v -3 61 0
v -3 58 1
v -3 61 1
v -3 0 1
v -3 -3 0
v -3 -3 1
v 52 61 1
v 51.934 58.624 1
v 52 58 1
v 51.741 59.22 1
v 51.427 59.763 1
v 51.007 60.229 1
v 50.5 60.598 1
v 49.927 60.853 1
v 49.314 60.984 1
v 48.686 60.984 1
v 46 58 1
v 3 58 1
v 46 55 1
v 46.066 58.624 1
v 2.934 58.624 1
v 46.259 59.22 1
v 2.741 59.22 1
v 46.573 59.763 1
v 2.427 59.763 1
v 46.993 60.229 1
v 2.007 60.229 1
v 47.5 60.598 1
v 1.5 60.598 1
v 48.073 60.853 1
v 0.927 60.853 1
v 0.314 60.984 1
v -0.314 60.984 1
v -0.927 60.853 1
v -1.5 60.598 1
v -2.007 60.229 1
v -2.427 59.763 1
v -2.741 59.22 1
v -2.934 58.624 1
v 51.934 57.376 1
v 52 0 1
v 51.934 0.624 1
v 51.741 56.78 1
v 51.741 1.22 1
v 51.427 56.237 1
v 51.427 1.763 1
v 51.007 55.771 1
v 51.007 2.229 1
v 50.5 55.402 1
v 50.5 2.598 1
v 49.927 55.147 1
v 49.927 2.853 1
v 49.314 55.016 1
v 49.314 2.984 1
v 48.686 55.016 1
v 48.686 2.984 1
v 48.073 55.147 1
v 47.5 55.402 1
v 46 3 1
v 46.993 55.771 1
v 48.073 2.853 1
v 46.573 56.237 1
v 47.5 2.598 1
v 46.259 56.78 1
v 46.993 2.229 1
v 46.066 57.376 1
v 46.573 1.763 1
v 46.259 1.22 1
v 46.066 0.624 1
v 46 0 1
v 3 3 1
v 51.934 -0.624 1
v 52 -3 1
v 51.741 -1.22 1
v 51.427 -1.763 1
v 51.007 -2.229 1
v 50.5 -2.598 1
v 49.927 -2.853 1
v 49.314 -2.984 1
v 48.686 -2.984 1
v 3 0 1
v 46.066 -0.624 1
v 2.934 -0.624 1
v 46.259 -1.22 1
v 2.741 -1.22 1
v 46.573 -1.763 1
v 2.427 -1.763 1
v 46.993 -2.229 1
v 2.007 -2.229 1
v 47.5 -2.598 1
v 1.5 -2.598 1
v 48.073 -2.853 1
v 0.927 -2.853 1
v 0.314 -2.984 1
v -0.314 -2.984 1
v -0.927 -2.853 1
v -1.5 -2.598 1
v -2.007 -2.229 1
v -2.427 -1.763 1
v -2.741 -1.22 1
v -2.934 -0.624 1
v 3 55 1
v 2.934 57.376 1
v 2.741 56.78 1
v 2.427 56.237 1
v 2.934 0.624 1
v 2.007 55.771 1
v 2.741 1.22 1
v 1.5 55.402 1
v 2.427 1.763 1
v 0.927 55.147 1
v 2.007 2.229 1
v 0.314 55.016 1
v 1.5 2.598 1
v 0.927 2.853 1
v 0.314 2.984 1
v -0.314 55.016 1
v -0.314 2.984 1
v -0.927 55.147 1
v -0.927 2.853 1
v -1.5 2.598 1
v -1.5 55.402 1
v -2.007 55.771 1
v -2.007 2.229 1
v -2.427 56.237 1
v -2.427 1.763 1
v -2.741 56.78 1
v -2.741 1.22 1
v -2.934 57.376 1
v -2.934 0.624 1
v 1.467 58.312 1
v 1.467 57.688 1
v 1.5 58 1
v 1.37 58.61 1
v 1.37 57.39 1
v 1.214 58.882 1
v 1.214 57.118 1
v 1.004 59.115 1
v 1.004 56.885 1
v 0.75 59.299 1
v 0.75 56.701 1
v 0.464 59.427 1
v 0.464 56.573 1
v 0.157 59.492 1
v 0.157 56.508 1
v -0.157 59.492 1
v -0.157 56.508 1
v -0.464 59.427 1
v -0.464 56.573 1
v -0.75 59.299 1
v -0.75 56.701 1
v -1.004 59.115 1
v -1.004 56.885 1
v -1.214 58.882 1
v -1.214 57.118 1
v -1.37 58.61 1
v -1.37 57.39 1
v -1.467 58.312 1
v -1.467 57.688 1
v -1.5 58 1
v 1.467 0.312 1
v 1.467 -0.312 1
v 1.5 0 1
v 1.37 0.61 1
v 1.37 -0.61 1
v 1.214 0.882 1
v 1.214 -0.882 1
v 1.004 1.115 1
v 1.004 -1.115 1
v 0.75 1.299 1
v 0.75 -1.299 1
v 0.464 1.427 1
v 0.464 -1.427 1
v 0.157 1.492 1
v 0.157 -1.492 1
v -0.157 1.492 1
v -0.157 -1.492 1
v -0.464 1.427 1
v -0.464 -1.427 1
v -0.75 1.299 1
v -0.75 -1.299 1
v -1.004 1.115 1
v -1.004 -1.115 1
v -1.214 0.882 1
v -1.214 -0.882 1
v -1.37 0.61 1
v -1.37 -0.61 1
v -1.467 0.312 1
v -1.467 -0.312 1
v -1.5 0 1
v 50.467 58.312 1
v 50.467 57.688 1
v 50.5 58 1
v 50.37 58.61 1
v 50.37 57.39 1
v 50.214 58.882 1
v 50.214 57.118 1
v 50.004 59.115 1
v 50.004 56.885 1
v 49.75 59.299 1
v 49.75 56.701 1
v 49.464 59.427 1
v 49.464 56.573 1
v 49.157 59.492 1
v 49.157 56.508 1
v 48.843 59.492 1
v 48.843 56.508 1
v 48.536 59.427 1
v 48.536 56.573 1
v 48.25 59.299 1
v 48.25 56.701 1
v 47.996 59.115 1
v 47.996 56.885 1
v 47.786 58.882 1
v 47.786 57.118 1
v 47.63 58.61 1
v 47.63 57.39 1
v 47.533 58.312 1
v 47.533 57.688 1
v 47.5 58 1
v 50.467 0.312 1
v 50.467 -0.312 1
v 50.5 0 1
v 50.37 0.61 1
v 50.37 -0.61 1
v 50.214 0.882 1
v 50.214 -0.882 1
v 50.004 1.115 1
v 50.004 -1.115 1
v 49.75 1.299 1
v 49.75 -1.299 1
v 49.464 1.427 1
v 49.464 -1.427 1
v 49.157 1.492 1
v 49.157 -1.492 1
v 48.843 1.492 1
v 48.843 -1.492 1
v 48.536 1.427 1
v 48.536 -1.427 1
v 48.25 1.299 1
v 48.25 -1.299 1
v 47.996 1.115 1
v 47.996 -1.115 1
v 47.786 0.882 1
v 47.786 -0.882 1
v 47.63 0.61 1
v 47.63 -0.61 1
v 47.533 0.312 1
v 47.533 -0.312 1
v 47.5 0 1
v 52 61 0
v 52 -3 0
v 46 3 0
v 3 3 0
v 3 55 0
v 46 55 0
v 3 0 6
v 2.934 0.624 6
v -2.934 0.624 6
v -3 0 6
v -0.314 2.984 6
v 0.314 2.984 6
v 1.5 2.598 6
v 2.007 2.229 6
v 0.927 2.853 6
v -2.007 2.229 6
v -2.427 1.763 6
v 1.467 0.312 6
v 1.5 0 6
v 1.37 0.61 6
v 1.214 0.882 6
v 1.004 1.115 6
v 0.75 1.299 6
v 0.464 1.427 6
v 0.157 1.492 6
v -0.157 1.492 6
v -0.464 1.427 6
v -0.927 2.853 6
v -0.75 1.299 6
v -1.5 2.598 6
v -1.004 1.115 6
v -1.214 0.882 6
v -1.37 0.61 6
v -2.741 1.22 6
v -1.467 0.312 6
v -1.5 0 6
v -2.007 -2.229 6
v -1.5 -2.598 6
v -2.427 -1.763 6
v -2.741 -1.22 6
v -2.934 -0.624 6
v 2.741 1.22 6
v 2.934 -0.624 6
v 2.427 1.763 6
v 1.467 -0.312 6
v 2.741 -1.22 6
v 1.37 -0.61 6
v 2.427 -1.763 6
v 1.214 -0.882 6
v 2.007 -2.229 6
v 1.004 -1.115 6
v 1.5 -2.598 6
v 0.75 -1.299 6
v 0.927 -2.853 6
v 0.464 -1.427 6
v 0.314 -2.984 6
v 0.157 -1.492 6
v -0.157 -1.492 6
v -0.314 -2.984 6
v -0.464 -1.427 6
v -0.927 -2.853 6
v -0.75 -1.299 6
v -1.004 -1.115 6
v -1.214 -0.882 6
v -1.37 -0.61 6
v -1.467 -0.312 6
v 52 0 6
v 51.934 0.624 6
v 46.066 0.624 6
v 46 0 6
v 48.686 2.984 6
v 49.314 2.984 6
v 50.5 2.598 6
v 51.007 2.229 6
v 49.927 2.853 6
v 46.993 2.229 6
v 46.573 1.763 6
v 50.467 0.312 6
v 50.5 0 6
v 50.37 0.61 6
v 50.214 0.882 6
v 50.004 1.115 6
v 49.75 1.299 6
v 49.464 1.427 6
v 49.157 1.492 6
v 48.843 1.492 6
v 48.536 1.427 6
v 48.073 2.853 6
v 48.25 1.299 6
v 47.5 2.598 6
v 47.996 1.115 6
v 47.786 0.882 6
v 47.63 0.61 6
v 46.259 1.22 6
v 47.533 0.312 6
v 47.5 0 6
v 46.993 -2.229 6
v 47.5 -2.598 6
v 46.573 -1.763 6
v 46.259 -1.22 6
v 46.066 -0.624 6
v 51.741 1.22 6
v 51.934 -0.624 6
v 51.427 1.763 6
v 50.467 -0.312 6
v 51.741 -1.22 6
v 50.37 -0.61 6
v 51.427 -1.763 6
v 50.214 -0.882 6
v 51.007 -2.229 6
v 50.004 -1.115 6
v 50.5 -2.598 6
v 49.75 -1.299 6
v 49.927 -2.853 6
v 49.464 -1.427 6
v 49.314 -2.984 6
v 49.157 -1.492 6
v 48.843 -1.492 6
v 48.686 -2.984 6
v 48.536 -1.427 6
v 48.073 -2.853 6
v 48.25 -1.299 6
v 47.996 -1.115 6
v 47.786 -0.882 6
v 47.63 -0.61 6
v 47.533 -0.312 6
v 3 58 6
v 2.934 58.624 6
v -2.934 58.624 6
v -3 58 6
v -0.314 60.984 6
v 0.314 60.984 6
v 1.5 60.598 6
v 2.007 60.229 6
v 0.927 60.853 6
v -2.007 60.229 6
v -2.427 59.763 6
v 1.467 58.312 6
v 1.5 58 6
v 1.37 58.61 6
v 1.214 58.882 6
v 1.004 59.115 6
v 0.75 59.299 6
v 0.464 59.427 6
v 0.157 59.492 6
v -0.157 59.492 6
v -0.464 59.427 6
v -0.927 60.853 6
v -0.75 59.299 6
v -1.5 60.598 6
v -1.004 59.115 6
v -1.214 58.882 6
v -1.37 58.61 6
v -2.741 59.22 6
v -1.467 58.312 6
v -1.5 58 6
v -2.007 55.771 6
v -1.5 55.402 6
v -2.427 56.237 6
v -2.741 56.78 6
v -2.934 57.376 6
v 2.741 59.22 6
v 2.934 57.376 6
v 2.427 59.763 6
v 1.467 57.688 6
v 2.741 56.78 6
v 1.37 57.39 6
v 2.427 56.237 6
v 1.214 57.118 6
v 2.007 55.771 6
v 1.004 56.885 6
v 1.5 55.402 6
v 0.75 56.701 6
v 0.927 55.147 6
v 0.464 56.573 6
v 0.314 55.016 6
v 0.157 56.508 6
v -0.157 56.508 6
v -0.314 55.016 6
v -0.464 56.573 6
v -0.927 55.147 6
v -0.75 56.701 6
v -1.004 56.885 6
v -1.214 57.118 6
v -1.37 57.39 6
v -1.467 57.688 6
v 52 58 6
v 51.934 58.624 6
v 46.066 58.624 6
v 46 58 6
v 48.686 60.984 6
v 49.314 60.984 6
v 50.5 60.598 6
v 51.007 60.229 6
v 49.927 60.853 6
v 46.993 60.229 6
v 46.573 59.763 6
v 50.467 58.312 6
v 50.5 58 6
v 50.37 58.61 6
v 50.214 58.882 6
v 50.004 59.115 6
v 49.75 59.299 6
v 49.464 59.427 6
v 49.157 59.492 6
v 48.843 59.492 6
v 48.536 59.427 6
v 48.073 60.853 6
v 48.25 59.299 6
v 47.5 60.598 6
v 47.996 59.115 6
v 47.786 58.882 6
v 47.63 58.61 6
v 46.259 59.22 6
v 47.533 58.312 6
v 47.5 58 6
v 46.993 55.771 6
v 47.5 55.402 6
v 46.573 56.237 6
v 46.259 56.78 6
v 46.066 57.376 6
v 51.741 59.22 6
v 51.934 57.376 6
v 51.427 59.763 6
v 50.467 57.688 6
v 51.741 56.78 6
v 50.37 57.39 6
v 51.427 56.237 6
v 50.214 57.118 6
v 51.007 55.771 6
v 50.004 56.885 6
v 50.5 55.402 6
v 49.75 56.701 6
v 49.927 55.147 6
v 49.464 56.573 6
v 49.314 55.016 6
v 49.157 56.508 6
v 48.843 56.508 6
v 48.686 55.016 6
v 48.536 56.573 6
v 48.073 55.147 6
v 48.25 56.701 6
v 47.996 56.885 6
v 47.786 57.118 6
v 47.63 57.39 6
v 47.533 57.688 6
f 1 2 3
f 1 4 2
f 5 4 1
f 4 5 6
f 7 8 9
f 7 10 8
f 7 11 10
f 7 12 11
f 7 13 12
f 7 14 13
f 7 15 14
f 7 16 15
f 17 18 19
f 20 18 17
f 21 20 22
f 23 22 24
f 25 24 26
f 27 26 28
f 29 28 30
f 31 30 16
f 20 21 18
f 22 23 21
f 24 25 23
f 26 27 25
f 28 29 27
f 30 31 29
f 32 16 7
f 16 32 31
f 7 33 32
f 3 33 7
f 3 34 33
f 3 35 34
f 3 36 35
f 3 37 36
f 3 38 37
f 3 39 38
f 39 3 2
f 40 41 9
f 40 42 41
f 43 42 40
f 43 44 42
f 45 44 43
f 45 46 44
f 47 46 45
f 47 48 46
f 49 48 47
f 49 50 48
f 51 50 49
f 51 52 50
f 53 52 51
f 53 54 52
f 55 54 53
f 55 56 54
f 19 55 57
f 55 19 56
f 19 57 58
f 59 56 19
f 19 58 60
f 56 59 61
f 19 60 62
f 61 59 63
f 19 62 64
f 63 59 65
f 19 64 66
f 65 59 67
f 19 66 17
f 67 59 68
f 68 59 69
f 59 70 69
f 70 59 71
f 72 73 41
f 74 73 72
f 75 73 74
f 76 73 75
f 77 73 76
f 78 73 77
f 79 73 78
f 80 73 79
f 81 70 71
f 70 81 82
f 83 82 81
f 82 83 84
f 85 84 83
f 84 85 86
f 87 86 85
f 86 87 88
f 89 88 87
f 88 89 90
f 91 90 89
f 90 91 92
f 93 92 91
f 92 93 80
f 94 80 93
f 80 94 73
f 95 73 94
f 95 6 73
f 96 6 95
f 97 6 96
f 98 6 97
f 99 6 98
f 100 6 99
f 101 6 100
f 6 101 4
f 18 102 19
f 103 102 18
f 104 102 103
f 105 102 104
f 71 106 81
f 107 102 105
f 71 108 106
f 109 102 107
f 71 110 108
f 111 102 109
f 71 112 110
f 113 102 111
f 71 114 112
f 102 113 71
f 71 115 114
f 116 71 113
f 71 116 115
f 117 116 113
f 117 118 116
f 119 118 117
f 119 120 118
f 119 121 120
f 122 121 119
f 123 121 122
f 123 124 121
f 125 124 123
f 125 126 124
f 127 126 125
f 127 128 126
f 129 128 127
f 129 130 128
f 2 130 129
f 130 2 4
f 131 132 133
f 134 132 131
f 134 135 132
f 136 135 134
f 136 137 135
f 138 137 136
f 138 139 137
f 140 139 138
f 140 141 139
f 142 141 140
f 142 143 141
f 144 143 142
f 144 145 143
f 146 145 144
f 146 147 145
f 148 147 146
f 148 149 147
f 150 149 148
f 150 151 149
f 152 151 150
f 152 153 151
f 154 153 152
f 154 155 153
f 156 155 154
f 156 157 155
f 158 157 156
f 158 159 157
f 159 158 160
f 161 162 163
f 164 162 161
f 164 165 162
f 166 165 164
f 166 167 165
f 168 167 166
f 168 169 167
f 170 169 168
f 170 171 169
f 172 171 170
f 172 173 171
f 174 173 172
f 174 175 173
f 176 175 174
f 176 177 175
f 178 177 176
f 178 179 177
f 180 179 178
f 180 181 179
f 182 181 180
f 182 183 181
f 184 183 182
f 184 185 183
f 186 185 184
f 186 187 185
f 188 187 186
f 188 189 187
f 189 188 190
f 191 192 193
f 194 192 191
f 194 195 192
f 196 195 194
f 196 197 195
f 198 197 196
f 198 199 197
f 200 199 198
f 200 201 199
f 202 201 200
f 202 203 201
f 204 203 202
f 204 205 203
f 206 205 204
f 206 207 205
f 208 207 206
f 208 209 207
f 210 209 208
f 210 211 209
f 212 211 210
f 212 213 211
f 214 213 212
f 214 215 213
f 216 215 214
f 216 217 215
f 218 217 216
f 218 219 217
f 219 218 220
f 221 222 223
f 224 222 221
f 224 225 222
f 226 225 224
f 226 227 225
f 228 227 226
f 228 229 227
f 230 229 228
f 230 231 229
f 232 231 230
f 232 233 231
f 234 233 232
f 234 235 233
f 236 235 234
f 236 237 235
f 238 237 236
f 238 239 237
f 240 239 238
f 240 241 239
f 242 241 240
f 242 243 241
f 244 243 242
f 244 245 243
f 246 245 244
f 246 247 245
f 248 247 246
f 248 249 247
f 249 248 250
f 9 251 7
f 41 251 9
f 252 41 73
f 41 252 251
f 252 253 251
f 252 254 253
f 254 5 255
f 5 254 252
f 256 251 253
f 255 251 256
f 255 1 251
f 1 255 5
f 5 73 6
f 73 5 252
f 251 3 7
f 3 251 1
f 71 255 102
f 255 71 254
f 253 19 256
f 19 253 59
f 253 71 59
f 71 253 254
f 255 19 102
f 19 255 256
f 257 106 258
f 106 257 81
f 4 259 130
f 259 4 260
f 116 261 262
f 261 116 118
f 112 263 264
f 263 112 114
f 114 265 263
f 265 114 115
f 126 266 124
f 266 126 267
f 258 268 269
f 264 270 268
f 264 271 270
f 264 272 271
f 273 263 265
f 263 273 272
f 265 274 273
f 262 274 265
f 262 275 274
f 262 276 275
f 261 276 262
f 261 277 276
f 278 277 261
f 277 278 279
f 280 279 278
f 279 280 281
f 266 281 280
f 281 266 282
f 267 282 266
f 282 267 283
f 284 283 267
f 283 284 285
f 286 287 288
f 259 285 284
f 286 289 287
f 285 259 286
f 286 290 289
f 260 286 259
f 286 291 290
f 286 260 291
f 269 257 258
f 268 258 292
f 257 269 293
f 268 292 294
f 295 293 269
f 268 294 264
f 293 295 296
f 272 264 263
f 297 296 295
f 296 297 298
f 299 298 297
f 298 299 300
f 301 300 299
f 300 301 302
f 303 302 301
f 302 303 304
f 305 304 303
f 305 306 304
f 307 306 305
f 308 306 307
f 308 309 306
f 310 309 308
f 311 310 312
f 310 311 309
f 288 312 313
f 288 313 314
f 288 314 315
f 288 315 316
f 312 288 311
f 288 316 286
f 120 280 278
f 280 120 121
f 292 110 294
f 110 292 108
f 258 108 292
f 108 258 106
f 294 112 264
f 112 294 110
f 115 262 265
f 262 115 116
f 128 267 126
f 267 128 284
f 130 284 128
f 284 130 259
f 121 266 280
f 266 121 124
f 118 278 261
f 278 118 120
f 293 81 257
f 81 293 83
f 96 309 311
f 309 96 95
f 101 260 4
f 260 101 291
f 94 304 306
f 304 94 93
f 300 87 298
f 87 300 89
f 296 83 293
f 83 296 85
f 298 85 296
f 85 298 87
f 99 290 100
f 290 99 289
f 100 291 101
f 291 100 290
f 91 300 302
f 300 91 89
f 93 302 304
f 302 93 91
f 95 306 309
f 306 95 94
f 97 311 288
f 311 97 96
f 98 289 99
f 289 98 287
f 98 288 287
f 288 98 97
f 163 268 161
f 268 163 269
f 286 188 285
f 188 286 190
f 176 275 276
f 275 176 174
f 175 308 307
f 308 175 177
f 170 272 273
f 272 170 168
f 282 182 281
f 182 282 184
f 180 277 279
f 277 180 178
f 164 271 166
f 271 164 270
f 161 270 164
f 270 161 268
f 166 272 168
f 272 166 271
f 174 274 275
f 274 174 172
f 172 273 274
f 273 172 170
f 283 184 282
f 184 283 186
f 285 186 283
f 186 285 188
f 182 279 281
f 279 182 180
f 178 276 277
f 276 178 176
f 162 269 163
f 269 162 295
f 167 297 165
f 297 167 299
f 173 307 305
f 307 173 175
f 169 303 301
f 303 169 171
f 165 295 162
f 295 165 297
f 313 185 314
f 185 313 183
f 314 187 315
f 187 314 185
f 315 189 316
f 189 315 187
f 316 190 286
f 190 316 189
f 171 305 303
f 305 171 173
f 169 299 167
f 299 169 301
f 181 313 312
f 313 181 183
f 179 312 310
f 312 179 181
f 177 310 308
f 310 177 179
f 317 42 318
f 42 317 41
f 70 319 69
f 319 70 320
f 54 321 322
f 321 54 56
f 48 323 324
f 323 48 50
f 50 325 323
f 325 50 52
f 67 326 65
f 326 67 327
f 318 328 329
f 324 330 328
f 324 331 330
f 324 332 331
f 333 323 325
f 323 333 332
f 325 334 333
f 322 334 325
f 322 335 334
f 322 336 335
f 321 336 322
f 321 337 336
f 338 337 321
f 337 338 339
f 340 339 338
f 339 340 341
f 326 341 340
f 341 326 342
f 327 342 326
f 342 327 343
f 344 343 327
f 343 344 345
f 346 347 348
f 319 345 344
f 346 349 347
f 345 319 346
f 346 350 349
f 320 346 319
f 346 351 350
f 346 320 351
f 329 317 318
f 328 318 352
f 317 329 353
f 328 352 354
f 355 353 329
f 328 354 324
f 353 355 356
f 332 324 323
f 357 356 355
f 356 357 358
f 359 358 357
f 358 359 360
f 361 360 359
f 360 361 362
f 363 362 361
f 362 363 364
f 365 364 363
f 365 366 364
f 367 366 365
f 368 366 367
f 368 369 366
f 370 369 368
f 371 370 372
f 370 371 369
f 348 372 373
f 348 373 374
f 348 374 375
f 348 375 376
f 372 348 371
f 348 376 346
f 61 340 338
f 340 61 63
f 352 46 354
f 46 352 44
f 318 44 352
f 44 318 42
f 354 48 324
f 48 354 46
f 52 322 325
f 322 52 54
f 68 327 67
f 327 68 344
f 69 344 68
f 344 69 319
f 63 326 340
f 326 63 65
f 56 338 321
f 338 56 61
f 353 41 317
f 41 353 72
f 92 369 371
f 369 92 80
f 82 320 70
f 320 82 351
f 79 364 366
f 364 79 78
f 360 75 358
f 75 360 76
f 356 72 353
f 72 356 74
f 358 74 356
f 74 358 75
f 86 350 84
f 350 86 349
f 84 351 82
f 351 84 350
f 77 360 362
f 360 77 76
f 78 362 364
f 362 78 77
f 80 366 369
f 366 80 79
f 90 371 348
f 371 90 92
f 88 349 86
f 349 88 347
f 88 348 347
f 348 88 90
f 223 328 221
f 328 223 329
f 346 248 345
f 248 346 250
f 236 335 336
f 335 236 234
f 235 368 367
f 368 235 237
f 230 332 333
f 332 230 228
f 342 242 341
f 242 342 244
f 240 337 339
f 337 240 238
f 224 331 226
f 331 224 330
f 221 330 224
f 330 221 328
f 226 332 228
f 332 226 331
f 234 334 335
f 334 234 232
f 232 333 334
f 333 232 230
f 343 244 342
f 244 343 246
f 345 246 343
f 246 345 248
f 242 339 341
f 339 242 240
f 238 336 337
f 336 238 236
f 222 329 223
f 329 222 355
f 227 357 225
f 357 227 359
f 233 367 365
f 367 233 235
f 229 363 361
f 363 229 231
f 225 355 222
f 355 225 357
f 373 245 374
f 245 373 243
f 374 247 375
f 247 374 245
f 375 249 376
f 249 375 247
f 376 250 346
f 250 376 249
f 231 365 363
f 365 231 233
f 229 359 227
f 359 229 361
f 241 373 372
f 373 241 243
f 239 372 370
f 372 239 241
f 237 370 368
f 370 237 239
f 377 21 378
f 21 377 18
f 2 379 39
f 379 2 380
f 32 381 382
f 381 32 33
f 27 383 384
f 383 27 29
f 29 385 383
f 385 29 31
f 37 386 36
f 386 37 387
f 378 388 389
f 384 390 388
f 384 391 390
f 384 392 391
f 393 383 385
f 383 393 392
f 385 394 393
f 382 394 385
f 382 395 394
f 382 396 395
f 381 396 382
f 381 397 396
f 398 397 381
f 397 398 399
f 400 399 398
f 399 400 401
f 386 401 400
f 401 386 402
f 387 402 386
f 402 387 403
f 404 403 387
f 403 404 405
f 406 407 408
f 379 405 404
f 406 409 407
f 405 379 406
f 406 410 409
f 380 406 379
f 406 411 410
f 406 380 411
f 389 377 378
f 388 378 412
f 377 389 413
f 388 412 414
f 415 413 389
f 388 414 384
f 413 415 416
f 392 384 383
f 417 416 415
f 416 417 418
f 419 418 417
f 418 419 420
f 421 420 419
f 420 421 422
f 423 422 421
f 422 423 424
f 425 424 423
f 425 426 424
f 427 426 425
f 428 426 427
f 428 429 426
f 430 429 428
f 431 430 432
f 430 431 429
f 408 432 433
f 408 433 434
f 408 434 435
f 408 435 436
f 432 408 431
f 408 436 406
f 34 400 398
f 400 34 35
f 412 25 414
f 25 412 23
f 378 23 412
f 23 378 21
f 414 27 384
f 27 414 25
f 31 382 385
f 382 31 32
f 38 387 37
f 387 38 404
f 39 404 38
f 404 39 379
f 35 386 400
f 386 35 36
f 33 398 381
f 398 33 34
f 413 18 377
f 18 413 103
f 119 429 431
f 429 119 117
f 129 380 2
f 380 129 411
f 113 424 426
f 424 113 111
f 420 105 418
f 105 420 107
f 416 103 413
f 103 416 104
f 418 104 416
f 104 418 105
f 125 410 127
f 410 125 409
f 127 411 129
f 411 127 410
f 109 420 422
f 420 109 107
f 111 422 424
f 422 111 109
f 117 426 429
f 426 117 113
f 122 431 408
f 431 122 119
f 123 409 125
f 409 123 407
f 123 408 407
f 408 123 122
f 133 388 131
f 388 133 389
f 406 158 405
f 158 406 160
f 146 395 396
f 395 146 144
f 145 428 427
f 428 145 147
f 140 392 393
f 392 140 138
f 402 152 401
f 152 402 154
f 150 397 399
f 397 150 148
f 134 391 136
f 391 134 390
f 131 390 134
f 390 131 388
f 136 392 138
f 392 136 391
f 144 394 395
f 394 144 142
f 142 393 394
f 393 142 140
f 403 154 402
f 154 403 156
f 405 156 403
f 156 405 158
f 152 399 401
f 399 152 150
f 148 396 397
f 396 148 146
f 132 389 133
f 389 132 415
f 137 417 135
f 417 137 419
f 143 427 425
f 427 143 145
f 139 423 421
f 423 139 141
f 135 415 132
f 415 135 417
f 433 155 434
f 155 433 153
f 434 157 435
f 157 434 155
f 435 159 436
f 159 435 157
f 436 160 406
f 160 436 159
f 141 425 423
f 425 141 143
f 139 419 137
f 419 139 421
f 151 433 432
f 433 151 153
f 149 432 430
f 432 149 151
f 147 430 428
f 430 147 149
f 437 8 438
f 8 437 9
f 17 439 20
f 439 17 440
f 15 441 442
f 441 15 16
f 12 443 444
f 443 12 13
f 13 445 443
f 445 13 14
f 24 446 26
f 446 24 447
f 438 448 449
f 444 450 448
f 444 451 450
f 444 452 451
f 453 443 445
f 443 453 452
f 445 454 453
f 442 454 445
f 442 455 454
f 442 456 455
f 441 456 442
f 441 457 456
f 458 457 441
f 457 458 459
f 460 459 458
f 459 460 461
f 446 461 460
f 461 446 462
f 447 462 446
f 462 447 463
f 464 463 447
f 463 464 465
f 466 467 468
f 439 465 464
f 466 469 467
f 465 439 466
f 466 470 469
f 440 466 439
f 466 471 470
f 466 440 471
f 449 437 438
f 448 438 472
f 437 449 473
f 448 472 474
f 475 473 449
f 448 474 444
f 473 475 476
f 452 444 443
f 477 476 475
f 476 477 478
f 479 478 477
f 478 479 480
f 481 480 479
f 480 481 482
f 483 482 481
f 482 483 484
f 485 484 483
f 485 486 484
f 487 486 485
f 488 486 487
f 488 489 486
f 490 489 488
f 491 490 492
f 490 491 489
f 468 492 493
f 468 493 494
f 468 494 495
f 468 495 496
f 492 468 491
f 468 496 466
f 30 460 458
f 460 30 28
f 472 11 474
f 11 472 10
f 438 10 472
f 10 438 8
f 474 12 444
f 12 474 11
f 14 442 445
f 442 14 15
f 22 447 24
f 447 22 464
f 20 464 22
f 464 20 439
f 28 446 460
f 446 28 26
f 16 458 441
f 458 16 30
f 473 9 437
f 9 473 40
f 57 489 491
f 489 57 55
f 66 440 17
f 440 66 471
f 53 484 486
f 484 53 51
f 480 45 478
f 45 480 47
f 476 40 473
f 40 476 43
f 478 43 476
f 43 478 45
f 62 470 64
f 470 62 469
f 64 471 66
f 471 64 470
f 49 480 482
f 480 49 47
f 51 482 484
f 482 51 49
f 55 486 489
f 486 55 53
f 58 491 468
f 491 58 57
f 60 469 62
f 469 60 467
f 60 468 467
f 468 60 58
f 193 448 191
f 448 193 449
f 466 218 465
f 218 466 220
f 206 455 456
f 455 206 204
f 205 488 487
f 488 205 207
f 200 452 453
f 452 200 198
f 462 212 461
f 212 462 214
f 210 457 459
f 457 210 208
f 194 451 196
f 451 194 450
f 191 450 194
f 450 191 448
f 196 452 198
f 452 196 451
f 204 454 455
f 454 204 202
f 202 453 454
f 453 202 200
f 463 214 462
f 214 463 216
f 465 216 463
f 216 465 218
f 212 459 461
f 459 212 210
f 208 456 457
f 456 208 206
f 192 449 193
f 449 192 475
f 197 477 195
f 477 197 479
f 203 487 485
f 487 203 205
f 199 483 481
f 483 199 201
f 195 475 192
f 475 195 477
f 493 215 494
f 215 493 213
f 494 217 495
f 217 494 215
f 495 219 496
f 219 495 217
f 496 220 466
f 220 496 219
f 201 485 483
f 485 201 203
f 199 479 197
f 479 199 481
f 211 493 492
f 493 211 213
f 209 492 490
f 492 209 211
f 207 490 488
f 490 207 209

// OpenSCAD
$fs = 0.01;

h=6;

module standoff(h) {
    difference() {
        cylinder(d=6,h=h);
        cylinder(d=3,h=h);
    }
}

translate([0,0,0]) standoff(h);
translate([49,0,0]) standoff(h);
translate([0,58,0]) standoff(h);
translate([49,58,0]) standoff(h);
translate([-3,-3,0]) difference() {
    cube([49+3*2,58+3*2,1]);
    translate([6,6,0]) cube([49-3*2,58-3*2,2]);
}
